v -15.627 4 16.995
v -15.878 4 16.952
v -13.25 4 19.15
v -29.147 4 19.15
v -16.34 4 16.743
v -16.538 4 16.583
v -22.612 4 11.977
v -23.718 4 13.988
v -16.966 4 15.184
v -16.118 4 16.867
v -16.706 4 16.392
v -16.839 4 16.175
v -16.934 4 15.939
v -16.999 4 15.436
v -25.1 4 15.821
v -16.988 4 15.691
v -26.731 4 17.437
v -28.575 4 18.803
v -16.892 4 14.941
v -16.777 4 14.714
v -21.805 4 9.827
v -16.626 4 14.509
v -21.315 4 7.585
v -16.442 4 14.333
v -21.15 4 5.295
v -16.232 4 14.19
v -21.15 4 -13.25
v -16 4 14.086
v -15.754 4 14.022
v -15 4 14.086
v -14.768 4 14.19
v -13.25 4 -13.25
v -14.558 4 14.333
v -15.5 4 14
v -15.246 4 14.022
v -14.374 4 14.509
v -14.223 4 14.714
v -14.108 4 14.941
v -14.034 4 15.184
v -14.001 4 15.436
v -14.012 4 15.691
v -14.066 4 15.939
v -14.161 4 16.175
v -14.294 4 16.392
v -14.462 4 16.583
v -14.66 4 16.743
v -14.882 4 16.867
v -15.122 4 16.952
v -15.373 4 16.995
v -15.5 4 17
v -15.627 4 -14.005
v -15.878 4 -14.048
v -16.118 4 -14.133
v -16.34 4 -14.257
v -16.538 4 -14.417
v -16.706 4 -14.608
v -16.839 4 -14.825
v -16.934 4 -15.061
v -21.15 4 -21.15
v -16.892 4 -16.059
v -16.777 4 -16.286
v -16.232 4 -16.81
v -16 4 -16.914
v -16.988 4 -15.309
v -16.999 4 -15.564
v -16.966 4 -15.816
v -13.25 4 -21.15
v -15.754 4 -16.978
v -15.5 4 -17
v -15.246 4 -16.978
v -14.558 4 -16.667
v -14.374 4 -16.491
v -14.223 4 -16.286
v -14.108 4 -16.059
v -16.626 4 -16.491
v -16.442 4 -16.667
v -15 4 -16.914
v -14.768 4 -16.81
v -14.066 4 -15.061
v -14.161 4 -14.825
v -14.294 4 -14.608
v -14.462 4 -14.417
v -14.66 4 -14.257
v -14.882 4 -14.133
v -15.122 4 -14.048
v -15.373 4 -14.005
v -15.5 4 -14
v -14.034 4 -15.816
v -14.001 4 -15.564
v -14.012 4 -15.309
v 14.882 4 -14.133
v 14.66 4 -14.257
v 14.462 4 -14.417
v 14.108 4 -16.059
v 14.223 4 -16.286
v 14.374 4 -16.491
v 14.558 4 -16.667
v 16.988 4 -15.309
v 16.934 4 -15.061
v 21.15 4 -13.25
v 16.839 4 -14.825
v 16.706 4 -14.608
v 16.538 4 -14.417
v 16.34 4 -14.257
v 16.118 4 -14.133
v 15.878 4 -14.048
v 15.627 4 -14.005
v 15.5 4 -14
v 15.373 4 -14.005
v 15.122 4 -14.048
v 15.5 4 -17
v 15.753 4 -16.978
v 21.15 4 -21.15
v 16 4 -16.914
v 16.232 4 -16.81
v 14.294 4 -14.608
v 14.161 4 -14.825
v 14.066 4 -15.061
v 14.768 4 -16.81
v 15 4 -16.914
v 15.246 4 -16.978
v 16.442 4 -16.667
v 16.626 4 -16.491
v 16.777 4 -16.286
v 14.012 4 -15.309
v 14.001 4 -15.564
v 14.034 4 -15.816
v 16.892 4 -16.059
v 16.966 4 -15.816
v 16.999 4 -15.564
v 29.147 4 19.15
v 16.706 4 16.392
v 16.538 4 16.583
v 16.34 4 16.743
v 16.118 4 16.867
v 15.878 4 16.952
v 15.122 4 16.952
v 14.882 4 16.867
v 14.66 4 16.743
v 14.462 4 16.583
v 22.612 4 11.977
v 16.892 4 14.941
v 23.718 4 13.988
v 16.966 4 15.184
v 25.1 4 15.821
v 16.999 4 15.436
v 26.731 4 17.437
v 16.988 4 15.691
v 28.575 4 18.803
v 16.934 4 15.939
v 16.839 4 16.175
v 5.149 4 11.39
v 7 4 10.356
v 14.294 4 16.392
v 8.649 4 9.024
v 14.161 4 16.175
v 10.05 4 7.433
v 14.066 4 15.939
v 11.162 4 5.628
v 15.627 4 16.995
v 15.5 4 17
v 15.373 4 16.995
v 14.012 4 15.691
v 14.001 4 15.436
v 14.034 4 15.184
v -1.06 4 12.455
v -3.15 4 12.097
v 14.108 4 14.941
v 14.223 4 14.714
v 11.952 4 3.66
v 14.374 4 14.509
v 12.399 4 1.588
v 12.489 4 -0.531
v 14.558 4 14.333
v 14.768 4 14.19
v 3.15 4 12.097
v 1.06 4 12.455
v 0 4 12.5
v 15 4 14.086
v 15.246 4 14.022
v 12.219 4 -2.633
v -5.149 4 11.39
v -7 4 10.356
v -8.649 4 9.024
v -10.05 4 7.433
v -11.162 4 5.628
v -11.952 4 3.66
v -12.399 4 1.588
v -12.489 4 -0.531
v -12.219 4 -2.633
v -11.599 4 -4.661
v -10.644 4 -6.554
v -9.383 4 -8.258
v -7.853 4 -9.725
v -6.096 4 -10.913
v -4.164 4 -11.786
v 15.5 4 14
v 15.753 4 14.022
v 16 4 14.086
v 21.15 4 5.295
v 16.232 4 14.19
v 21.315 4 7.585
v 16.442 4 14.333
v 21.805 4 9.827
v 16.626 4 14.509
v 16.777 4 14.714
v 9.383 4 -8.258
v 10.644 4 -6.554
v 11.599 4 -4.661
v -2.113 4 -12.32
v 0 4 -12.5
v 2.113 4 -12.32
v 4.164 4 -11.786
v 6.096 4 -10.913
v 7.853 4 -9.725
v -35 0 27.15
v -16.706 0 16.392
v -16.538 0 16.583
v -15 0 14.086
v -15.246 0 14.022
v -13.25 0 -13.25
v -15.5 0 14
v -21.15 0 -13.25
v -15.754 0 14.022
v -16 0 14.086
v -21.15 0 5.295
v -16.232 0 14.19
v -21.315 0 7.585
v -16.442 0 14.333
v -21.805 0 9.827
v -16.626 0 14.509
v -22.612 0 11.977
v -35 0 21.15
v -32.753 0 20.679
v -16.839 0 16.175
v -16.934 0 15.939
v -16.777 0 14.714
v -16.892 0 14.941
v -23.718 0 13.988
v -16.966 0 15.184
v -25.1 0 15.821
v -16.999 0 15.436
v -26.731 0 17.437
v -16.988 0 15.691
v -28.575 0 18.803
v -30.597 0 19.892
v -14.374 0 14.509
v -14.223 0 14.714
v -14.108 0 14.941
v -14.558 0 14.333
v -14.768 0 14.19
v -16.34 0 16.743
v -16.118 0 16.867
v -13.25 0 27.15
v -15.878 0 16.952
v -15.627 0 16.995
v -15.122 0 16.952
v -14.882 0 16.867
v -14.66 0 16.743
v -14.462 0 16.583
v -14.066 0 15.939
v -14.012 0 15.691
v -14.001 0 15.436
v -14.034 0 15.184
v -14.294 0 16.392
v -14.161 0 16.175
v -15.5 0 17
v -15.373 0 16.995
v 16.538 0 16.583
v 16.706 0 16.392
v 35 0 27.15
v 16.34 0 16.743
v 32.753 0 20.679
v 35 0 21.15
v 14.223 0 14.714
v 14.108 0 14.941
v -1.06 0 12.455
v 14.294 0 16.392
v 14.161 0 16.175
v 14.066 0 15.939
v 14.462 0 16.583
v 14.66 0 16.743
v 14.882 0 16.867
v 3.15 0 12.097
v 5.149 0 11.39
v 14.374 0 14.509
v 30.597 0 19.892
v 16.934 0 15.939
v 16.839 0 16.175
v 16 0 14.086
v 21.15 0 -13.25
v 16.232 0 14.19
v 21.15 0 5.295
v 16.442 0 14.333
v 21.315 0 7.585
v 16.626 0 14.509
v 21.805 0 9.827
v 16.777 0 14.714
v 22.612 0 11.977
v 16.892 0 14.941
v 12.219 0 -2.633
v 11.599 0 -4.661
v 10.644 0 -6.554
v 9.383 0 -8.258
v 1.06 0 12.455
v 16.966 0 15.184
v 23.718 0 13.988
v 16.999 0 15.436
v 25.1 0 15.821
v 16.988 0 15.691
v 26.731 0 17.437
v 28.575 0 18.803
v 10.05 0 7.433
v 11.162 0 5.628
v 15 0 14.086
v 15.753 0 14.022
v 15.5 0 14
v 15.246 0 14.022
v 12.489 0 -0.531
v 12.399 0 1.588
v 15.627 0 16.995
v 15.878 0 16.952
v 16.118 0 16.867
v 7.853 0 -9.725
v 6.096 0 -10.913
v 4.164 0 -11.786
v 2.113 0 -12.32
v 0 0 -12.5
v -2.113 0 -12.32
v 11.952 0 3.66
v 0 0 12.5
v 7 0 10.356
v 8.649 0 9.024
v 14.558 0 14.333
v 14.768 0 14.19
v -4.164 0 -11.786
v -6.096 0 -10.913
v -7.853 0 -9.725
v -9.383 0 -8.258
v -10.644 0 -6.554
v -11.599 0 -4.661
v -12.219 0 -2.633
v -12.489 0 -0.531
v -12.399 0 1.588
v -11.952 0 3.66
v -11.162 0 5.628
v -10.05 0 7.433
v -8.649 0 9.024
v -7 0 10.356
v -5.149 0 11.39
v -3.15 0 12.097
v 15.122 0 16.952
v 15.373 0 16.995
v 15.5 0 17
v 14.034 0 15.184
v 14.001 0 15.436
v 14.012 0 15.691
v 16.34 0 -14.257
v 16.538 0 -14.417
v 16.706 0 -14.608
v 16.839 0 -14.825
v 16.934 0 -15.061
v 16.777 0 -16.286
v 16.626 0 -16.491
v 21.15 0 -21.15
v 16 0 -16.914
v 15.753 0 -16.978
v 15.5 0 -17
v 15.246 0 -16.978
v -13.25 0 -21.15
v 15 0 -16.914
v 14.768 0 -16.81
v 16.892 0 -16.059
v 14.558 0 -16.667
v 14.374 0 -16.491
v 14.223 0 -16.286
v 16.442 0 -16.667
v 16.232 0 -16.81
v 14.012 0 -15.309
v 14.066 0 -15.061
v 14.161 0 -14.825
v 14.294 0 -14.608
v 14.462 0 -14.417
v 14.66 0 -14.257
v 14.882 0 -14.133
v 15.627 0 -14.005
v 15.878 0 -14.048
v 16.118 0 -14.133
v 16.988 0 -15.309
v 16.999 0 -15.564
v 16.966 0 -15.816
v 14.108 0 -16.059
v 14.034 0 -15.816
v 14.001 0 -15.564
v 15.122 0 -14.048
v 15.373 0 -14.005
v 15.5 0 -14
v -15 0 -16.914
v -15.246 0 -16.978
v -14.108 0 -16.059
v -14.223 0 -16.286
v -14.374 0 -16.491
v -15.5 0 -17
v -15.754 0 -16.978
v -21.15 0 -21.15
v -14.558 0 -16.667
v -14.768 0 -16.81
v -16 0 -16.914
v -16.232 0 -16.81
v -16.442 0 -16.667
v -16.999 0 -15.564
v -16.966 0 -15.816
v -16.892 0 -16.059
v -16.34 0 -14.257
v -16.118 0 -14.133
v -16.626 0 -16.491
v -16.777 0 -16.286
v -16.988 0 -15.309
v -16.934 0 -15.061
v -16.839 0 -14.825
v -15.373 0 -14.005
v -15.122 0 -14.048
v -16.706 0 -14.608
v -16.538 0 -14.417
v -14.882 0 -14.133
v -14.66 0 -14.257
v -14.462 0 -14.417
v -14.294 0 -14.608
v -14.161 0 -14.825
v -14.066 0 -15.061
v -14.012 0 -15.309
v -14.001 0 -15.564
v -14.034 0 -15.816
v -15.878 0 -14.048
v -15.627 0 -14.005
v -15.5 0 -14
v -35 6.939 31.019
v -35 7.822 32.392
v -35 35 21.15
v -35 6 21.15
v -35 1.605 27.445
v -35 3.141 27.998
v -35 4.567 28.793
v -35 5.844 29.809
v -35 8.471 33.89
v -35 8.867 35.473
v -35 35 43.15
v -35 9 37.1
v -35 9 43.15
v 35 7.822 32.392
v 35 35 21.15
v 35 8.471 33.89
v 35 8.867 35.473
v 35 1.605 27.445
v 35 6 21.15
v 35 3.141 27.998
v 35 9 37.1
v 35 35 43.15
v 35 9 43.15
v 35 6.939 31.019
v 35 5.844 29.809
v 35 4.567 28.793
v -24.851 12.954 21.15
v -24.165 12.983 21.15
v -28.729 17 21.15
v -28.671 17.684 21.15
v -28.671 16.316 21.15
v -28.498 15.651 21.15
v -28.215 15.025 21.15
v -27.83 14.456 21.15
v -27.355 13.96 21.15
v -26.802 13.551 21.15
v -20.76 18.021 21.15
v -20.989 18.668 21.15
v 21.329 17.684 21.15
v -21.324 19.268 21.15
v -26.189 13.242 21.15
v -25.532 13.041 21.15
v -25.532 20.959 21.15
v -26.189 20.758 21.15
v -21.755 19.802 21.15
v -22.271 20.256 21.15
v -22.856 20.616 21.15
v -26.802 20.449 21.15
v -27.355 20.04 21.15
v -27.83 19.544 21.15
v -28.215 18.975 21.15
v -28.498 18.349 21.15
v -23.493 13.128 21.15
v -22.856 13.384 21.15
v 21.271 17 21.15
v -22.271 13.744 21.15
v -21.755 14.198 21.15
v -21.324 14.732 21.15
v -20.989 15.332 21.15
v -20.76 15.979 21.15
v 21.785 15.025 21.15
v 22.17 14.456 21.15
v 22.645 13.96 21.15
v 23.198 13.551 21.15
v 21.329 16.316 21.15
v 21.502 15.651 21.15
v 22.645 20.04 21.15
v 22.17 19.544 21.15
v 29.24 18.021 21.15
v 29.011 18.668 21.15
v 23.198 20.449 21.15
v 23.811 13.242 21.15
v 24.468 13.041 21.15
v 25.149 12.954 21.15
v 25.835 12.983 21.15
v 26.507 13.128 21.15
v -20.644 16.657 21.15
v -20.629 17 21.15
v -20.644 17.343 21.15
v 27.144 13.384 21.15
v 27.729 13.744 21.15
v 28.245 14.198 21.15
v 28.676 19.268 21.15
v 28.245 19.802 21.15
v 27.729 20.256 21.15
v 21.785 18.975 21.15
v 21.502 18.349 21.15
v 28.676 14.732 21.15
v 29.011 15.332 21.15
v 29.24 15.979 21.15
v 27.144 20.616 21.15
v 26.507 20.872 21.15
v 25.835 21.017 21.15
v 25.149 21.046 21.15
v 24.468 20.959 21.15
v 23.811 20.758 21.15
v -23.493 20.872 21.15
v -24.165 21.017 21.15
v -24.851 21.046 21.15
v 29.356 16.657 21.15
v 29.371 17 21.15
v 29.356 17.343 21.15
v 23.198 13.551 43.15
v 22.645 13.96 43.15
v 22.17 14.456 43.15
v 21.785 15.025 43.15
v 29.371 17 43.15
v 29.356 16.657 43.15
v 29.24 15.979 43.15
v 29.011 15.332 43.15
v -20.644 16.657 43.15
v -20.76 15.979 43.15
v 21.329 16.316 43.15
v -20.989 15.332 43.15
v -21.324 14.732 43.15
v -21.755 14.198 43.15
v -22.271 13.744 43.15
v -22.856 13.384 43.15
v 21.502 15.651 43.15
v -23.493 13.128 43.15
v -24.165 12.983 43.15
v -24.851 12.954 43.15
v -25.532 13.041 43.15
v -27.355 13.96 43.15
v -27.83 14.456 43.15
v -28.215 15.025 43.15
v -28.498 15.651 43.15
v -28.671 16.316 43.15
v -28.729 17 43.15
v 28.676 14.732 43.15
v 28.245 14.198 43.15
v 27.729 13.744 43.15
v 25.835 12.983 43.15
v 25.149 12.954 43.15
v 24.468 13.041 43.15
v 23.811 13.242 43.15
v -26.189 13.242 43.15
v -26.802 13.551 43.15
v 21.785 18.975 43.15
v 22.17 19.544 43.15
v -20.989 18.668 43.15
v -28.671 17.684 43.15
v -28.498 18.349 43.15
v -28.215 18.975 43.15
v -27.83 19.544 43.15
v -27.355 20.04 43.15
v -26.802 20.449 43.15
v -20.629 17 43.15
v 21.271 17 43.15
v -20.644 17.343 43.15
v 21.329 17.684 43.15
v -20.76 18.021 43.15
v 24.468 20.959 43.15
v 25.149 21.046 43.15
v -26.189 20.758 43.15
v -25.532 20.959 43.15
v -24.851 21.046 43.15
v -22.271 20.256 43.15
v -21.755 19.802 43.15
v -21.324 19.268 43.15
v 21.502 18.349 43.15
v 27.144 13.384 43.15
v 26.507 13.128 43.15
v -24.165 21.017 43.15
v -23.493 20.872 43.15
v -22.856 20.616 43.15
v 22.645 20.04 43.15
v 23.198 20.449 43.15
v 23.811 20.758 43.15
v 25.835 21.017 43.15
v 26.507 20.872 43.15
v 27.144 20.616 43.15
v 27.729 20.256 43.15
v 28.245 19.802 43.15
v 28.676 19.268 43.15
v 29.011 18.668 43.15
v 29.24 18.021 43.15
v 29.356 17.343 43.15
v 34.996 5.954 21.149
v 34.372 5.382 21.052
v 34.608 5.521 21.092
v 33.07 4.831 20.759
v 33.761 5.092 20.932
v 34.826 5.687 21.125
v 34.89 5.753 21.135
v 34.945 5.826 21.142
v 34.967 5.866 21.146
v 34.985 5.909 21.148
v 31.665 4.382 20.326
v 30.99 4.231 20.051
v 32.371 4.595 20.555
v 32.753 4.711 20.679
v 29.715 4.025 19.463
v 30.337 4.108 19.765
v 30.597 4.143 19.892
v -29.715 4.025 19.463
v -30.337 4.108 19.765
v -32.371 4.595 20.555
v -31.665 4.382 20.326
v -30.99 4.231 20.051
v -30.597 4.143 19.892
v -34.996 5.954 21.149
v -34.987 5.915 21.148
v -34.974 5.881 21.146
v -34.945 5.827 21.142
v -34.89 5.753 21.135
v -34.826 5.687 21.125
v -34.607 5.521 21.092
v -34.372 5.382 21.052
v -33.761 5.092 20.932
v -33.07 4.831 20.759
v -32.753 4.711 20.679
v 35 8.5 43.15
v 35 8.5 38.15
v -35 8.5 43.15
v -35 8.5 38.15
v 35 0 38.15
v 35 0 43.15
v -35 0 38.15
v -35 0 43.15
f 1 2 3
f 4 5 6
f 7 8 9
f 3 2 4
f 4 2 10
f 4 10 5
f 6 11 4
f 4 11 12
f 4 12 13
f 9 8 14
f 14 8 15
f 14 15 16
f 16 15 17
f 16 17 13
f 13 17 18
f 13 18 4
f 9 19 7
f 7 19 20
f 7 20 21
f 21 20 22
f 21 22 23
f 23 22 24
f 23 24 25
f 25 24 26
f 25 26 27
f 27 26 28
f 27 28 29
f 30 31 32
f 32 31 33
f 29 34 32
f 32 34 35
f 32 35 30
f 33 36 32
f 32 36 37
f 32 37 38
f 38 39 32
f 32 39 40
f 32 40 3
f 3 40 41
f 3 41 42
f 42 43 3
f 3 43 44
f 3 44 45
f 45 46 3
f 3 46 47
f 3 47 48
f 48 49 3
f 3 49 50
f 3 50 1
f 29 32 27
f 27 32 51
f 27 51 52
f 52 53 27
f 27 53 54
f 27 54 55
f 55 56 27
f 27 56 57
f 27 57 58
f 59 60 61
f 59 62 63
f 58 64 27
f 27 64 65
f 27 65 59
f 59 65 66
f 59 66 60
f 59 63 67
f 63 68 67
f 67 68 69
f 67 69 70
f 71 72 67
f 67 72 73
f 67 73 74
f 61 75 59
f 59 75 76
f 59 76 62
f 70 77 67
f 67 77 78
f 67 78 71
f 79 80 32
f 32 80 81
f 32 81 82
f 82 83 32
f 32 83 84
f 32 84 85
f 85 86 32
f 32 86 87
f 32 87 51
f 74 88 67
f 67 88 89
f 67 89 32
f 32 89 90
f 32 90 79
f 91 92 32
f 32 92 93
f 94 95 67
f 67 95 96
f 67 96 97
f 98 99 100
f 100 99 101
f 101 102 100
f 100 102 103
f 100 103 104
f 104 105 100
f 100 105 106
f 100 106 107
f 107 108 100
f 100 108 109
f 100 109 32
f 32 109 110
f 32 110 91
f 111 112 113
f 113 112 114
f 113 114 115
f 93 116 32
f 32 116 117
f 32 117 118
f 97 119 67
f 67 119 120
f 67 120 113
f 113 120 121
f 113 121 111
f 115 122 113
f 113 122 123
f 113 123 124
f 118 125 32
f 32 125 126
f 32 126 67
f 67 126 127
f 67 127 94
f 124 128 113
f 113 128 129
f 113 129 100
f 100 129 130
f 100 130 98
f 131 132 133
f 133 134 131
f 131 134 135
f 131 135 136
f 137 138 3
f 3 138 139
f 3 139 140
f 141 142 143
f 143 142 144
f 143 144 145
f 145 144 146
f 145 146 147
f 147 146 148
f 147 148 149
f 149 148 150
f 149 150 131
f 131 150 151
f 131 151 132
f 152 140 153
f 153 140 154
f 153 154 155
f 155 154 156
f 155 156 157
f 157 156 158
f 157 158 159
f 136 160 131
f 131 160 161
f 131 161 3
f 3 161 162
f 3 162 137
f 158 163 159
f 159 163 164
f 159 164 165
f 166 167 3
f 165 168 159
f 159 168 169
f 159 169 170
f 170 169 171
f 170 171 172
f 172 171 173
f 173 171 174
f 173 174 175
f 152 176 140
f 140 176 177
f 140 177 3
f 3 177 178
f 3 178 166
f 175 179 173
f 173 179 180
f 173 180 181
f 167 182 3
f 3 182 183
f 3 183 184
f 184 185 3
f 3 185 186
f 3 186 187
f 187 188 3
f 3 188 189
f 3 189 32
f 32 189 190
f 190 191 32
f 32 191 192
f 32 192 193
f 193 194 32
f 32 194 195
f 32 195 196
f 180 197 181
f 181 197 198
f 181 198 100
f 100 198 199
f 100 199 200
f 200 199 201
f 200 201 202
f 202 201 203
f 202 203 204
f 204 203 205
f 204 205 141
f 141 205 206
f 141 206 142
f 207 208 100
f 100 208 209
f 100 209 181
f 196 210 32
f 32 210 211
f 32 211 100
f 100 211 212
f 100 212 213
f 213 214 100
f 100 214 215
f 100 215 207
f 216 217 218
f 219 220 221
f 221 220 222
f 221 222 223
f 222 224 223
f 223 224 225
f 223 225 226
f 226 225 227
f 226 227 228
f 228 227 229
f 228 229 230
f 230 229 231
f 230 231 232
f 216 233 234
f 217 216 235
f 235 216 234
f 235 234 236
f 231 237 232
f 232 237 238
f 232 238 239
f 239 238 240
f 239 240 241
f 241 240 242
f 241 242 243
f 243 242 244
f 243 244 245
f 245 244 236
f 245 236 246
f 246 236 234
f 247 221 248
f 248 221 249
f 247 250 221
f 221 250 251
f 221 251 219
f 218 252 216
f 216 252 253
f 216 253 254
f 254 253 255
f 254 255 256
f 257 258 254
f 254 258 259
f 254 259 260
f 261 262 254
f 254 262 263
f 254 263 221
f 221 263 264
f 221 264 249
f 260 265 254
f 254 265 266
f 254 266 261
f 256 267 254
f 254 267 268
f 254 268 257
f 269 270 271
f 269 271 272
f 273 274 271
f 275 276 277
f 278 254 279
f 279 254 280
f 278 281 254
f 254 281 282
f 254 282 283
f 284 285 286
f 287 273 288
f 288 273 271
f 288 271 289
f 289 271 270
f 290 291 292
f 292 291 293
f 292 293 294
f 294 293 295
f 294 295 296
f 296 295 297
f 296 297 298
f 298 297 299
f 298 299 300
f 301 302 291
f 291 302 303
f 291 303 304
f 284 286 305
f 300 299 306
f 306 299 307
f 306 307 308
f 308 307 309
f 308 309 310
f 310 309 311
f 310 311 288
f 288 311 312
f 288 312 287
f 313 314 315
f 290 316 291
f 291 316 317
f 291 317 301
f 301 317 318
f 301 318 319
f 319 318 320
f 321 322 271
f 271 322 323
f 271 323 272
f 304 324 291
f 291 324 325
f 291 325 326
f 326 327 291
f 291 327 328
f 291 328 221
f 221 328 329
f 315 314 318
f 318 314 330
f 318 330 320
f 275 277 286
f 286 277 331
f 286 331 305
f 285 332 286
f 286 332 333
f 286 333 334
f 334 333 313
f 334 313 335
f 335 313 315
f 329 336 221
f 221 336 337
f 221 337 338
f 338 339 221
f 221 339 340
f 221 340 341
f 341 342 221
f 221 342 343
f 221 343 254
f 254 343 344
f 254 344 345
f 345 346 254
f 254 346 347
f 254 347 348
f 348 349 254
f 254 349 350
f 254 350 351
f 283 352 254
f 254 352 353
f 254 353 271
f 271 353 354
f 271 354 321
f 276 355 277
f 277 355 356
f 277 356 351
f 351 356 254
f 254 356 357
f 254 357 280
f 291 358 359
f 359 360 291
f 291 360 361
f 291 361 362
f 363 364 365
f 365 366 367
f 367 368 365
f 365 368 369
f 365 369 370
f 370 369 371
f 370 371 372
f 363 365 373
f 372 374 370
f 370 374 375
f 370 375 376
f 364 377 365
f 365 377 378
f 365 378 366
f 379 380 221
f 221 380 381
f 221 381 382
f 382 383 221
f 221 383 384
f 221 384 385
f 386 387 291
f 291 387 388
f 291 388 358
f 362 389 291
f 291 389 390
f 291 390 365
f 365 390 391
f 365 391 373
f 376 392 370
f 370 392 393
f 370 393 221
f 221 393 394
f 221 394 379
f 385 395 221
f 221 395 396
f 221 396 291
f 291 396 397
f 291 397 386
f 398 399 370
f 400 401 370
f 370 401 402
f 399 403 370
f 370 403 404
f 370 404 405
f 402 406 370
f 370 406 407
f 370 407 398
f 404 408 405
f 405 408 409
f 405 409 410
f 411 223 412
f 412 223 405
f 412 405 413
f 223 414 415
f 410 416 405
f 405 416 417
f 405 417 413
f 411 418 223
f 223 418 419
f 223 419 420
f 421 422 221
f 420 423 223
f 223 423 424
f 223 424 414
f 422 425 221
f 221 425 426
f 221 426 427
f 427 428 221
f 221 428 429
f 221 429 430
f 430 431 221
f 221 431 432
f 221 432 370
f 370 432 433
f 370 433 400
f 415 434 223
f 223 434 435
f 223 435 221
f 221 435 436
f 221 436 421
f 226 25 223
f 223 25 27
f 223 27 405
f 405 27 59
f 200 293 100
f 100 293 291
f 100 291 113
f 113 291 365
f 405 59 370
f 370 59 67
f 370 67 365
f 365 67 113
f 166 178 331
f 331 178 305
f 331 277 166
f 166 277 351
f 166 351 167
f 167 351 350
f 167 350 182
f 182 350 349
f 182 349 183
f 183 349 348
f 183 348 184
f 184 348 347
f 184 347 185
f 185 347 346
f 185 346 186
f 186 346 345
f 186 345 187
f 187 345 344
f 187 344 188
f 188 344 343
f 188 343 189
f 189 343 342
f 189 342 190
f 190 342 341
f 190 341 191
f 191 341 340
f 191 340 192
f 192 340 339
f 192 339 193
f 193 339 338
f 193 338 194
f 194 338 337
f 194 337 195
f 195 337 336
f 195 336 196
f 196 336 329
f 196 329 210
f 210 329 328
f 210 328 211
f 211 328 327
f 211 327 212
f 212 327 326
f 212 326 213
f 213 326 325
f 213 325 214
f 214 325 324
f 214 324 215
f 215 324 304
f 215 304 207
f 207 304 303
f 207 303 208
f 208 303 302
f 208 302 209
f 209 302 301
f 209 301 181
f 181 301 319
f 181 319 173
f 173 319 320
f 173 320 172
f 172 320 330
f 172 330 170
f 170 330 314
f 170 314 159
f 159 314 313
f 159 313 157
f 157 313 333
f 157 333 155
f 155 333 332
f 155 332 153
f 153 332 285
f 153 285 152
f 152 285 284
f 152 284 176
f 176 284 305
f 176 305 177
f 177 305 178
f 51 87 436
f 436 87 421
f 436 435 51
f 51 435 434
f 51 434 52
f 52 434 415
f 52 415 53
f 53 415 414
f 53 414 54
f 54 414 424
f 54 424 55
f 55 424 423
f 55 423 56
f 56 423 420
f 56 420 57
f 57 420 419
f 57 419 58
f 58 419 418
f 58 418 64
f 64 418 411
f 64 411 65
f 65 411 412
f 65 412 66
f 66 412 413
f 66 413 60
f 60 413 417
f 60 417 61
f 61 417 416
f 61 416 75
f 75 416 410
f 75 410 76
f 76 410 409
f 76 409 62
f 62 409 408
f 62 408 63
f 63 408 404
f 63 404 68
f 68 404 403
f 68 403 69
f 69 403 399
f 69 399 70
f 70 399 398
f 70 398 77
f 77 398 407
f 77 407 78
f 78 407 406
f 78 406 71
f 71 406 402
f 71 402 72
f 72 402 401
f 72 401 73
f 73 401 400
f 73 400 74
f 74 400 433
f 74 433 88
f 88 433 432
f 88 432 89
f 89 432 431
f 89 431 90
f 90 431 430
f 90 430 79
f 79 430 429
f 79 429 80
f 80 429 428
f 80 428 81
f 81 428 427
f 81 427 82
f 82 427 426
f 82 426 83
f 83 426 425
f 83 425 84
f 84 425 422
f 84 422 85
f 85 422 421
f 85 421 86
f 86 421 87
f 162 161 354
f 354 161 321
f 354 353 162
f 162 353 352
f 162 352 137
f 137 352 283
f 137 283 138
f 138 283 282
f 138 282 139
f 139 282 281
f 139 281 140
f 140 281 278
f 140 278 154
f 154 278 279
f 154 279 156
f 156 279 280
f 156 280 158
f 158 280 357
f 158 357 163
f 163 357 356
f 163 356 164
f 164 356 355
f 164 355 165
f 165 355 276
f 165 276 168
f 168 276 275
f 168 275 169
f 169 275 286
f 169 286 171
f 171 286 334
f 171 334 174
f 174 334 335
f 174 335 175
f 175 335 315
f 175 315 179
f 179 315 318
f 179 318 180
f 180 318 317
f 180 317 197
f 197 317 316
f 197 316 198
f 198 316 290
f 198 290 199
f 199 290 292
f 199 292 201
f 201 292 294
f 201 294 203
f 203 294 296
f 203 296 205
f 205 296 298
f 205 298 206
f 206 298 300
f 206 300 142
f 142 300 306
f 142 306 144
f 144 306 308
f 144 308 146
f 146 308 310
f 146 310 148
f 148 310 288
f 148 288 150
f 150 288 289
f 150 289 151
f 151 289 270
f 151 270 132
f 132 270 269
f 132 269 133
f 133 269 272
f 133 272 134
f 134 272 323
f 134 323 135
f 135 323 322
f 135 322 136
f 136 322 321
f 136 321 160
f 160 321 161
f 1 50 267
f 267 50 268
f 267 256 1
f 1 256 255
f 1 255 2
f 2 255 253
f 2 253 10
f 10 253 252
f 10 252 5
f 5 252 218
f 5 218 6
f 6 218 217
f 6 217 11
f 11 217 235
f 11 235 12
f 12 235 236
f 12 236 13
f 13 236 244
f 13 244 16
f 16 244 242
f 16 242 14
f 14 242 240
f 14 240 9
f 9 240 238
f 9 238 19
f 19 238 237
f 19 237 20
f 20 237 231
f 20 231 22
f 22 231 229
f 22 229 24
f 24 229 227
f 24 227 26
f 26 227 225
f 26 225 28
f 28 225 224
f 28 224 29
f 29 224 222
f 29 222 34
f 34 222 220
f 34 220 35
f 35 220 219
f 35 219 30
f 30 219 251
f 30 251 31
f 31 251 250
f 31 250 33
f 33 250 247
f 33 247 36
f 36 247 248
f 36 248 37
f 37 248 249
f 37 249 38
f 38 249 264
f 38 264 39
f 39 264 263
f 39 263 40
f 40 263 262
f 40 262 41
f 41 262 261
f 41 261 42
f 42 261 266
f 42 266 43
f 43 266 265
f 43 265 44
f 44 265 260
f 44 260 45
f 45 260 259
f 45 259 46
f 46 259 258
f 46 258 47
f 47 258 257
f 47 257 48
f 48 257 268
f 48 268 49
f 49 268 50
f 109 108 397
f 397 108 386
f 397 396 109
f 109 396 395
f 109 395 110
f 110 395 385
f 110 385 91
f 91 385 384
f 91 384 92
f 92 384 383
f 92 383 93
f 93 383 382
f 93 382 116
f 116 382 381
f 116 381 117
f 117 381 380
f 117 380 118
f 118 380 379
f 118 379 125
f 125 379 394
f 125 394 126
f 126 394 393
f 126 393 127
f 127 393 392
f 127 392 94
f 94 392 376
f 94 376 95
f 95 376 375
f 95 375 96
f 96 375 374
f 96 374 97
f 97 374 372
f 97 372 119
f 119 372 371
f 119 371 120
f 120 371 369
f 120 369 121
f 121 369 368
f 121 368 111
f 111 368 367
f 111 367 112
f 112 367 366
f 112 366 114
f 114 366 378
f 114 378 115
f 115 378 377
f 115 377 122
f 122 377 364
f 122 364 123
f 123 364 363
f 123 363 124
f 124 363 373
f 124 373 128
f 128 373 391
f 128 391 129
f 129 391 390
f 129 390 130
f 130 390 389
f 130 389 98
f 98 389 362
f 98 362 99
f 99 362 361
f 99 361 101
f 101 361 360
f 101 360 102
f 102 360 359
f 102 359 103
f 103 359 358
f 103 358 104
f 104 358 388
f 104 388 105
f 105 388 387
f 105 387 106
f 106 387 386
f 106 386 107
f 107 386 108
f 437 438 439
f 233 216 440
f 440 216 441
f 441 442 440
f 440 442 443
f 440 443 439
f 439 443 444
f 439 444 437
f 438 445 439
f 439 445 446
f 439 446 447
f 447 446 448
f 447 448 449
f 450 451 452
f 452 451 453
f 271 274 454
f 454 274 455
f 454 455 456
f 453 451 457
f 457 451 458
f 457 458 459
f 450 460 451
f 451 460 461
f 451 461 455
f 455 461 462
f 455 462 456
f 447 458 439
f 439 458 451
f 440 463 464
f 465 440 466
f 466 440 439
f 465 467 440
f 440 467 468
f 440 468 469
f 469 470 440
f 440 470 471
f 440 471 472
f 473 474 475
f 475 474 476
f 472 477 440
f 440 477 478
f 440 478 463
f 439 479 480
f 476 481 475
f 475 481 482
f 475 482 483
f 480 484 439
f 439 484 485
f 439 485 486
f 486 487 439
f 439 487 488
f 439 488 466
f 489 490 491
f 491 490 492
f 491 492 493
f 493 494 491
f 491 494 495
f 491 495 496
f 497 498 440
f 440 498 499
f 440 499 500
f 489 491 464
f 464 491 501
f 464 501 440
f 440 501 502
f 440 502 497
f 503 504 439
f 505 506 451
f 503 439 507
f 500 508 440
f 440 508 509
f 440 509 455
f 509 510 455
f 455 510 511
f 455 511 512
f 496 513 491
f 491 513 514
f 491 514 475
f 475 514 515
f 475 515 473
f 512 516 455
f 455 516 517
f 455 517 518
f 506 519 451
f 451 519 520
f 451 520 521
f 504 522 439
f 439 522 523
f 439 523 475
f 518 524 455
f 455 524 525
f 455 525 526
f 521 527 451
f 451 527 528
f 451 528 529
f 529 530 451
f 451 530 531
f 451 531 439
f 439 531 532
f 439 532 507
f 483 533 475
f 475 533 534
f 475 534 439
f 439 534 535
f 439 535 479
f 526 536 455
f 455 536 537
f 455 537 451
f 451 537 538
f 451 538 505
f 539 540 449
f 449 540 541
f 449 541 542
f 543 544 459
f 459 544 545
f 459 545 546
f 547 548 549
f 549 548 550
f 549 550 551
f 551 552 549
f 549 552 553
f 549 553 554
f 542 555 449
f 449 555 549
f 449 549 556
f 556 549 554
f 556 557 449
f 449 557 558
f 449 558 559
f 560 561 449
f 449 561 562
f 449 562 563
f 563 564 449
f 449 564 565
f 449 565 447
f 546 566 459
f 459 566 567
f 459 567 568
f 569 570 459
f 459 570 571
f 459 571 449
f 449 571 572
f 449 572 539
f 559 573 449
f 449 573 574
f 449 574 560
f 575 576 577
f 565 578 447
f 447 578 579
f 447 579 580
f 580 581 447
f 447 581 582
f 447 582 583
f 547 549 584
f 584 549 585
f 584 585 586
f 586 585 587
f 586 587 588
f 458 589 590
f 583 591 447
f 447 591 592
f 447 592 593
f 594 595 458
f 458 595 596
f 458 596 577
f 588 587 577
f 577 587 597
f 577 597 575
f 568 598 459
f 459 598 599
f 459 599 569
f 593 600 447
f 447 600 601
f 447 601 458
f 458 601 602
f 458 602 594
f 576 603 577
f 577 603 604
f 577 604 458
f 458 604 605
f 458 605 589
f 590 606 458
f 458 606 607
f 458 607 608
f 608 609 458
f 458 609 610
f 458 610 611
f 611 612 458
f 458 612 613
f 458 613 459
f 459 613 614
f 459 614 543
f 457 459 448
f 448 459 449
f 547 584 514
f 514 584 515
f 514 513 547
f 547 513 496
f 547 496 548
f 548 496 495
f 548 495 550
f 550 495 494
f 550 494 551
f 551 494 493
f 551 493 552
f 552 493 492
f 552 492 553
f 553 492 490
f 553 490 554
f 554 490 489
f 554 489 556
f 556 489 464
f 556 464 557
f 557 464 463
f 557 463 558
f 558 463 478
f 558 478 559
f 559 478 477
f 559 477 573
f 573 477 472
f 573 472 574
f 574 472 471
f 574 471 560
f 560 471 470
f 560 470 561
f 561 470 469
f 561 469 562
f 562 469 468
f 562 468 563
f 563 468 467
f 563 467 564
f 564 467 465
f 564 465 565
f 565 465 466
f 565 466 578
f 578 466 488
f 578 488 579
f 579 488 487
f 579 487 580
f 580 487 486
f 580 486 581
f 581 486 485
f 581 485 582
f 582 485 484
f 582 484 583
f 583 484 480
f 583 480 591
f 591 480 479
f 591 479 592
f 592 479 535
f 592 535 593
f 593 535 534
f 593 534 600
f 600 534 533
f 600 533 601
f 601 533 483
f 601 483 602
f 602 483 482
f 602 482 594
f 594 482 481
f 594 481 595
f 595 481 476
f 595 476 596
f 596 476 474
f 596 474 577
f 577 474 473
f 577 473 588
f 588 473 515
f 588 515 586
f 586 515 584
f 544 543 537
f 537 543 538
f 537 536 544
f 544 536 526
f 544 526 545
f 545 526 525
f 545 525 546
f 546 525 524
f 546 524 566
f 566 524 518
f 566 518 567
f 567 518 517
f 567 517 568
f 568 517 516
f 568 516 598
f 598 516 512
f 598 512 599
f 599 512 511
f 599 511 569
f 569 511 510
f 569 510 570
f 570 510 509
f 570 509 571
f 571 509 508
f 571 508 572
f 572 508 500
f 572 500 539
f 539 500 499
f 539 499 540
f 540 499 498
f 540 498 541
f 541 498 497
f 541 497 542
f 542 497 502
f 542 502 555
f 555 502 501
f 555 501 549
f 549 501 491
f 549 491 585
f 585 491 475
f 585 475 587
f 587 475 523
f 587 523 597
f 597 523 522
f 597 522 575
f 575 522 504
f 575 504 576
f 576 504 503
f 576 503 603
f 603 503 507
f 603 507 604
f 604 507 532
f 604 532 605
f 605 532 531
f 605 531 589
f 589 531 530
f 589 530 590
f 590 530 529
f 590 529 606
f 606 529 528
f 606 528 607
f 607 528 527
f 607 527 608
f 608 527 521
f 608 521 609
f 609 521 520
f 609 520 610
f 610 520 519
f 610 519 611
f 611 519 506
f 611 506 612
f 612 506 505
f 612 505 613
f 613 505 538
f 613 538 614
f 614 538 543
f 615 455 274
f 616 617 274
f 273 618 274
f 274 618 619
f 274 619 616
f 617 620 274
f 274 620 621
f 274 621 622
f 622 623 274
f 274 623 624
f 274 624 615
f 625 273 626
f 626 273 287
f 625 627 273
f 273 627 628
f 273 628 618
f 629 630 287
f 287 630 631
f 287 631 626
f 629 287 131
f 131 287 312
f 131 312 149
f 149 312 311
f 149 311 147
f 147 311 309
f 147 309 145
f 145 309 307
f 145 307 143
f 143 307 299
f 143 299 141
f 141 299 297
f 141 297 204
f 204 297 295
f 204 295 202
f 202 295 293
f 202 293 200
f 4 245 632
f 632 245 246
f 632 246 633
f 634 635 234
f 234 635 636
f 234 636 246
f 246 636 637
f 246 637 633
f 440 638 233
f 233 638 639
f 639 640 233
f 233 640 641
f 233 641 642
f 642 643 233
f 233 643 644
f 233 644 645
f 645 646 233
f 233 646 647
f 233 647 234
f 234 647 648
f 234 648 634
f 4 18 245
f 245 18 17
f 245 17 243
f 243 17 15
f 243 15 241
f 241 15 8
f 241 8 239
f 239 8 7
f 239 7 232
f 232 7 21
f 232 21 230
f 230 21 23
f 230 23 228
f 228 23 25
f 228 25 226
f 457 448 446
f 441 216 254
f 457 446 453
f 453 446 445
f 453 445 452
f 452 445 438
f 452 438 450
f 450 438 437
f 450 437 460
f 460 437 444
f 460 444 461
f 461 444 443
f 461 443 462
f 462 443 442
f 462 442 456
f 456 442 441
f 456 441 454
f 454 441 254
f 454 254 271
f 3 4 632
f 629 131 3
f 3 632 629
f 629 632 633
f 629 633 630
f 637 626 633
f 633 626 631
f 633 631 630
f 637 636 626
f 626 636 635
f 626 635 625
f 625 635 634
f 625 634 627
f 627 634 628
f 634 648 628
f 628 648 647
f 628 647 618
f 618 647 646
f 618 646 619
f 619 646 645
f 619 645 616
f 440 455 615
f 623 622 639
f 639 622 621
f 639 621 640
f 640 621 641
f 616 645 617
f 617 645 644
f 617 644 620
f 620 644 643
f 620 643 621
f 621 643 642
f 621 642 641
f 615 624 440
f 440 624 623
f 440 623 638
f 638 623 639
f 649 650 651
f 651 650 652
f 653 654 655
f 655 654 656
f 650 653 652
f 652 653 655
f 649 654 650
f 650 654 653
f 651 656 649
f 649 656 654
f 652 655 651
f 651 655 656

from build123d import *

# Parameters (mm, degrees)
SKETCH1_W           = 42.3
SKETCH1_H           = 42.3
SKETCH1_R           = 1.5
SKETCH1_R_2         = 12.5
BOSS_EXTRUDE1_DEPTH = 4
SKETCH2_W           = 70
SKETCH2_H           = 35
BOSS_EXTRUDE3_DEPTH = 6
SKETCH5_W           = 70
SKETCH5_H           = 26
SKETCH5_R           = 4.05
BOSS_EXTRUDE7_DEPTH = 16
CUT_EXTRUDE1_START  = -16
SKETCH5_2_R         = 4.05
CUT_EXTRUDE1_DEPTH  = 16
FILLET1_R           = 16
FILLET2_R           = 10
FILLET4_R           = 2
SKETCH6_W           = 70
SKETCH6_H           = 5
BOSS_EXTRUDE8_DEPTH = 8.5


with BuildPart() as part:
    # Sketch1 → Boss-Extrude1 (new body)
    with BuildSketch(Plane(origin=(0, 0, 0), x_dir=(1, 0, 0), z_dir=(0, 1, 0))):
        Rectangle(SKETCH1_W, SKETCH1_H)
        with Locations(Location((-15.5, 15.5, 0), (0, 0, 270))):
            Circle(SKETCH1_R, mode=Mode.SUBTRACT)
        with Locations(Location((15.5, 15.5, 0), (0, 0, 270))):
            Circle(SKETCH1_R, mode=Mode.SUBTRACT)
        with Locations(Location((15.5, -15.5, 0), (0, 0, 270))):
            Circle(SKETCH1_R, mode=Mode.SUBTRACT)
        with Locations(Location((-15.5, -15.5, 0), (0, 0, 270))):
            Circle(SKETCH1_R, mode=Mode.SUBTRACT)
        with Locations(Location((0, 0, 0), (0, 0, 270))):
            Circle(SKETCH1_R_2, mode=Mode.SUBTRACT)
    extrude(amount=BOSS_EXTRUDE1_DEPTH)

    # Sketch2 → Boss-Extrude3 (add)
    with BuildSketch(Plane.XY.offset(21.15)):
        with Locations((0, 17.5)):
            Rectangle(SKETCH2_W, SKETCH2_H)
    extrude(amount=BOSS_EXTRUDE3_DEPTH)

    # Sketch5 → Boss-Extrude7 (add)
    with BuildSketch(Plane.XY.offset(27.15)):
        with Locations((0, 22)):
            Rectangle(SKETCH5_W, SKETCH5_H)
        with Locations((-24.679036529, 17)):
            Circle(SKETCH5_R, mode=Mode.SUBTRACT)
        with Locations((25.320963471, 17)):
            Circle(SKETCH5_R, mode=Mode.SUBTRACT)
    extrude(amount=BOSS_EXTRUDE7_DEPTH)

    # Sketch5<2> → Cut-Extrude1 (cut)
    with BuildSketch(Plane.XY.offset(27.15).offset(CUT_EXTRUDE1_START)):
        with Locations((-24.679036529, 17)):
            Circle(SKETCH5_2_R)
        with Locations((25.320963471, 17)):
            Circle(SKETCH5_2_R)
    extrude(amount=CUT_EXTRUDE1_DEPTH, mode=Mode.SUBTRACT)

    # Fillet1
    # the kernel refuses this fillet: 16 mm, written as the material it adds along each edge
    with BuildSketch(Plane(origin=(21.15, 0, 21.15), x_dir=(1, 0, 0), z_dir=(0, 1, 0))) as fillet1_piece_1:
        with BuildLine():
            CenterArc((16, 15.854888836), FILLET1_R, 180, 82.27751927)
            Line((0, 15.854888836), (-0.32, 15.854888836))
            Line((-0.32, 15.854888836), (-0.32, 0))
            Line((-0.32, 0), (0, -0.32))
            ThreePointArc((0, -0.32), (6.925, -0.32), (13.807, -0.317097777))
            Line((13.807, -0.317097777), (13.85, 0))
        make_face()
    extrude(amount=4)
    with BuildSketch(Plane(origin=(-21.15, 0, 21.15), x_dir=(-1, 0, 0), z_dir=(0, 1, 0))) as fillet1_piece_2:
        with BuildLine():
            CenterArc((16, -15.854888836), FILLET1_R, 97.72248073, 82.27751927)
            Line((0, -15.854888836), (-0.32, -15.854888836))
            Line((-0.32, -15.854888836), (-0.32, 0))
            Line((-0.32, 0), (0, 0.32))
            ThreePointArc((0, 0.32), (6.925, 0.32), (13.807, 0.317097777))
            Line((13.807, 0.317097777), (13.85, 0))
        make_face()
    extrude(amount=4)

    # Fillet2
    # the kernel refuses this fillet: 10 mm, written as the material it adds along each edge
    with BuildSketch(Plane(origin=(35, 9, 27.15), x_dir=(0, 0, 1), z_dir=(-1, 0, 0))) as fillet2_piece_1:
        with BuildLine():
            CenterArc((9.949874371, -10), FILLET2_R, 90, 84.260829523)
            Line((0, -9), (-0.198997487, -8.98))
            ThreePointArc((-0.198997487, -8.98), (-0.2, -4.5), (-0.2, 0))
            Line((-0.2, 0), (0, 0.2))
            Line((0, 0.2), (9.949874371, 0.2))
            Line((9.949874371, 0.2), (9.949874371, 0))
        make_face()
    extrude(amount=70)

    # Fillet4
    # the kernel refuses this fillet: 2 mm, written as the material it adds along each edge
    with BuildSketch(Plane(origin=(-35, 4, 21.15), x_dir=(0, 1, 0), z_dir=(1, 0, 0))) as fillet4_piece_1_section:
        with BuildLine():
            CenterArc((FILLET4_R, -FILLET4_R), FILLET4_R, 90, 90)
            Line((0, -FILLET4_R), (0, 0))
            Line((0, 0), (FILLET4_R, 0))
        make_face()
    fillet4_piece_1 = extrude(amount=70, mode=Mode.PRIVATE)
    fillet4_piece_1 = fillet4_piece_1 - Plane(origin=(-37.15, 4.464640399, 5.295111164), x_dir=(-1, 0, 0), z_dir=(0, -1, 0)) * Cylinder(16, 148, mode=Mode.PRIVATE)
    fillet4_piece_1 = fillet4_piece_1 - Plane(origin=(37.15, 4.464640399, 5.295111164), x_dir=(1, 0, 0), z_dir=(0, -1, 0)) * Cylinder(16, 148, mode=Mode.PRIVATE)
    add(fillet4_piece_1)


with BuildPart() as body_2:
    # Sketch6 → Boss-Extrude8 (new body)
    with BuildSketch(Plane.XZ):
        with Locations((0, 40.65)):
            Rectangle(SKETCH6_W, SKETCH6_H)
    extrude(amount=-BOSS_EXTRUDE8_DEPTH)


solid = Compound([part.part, body_2.part])
